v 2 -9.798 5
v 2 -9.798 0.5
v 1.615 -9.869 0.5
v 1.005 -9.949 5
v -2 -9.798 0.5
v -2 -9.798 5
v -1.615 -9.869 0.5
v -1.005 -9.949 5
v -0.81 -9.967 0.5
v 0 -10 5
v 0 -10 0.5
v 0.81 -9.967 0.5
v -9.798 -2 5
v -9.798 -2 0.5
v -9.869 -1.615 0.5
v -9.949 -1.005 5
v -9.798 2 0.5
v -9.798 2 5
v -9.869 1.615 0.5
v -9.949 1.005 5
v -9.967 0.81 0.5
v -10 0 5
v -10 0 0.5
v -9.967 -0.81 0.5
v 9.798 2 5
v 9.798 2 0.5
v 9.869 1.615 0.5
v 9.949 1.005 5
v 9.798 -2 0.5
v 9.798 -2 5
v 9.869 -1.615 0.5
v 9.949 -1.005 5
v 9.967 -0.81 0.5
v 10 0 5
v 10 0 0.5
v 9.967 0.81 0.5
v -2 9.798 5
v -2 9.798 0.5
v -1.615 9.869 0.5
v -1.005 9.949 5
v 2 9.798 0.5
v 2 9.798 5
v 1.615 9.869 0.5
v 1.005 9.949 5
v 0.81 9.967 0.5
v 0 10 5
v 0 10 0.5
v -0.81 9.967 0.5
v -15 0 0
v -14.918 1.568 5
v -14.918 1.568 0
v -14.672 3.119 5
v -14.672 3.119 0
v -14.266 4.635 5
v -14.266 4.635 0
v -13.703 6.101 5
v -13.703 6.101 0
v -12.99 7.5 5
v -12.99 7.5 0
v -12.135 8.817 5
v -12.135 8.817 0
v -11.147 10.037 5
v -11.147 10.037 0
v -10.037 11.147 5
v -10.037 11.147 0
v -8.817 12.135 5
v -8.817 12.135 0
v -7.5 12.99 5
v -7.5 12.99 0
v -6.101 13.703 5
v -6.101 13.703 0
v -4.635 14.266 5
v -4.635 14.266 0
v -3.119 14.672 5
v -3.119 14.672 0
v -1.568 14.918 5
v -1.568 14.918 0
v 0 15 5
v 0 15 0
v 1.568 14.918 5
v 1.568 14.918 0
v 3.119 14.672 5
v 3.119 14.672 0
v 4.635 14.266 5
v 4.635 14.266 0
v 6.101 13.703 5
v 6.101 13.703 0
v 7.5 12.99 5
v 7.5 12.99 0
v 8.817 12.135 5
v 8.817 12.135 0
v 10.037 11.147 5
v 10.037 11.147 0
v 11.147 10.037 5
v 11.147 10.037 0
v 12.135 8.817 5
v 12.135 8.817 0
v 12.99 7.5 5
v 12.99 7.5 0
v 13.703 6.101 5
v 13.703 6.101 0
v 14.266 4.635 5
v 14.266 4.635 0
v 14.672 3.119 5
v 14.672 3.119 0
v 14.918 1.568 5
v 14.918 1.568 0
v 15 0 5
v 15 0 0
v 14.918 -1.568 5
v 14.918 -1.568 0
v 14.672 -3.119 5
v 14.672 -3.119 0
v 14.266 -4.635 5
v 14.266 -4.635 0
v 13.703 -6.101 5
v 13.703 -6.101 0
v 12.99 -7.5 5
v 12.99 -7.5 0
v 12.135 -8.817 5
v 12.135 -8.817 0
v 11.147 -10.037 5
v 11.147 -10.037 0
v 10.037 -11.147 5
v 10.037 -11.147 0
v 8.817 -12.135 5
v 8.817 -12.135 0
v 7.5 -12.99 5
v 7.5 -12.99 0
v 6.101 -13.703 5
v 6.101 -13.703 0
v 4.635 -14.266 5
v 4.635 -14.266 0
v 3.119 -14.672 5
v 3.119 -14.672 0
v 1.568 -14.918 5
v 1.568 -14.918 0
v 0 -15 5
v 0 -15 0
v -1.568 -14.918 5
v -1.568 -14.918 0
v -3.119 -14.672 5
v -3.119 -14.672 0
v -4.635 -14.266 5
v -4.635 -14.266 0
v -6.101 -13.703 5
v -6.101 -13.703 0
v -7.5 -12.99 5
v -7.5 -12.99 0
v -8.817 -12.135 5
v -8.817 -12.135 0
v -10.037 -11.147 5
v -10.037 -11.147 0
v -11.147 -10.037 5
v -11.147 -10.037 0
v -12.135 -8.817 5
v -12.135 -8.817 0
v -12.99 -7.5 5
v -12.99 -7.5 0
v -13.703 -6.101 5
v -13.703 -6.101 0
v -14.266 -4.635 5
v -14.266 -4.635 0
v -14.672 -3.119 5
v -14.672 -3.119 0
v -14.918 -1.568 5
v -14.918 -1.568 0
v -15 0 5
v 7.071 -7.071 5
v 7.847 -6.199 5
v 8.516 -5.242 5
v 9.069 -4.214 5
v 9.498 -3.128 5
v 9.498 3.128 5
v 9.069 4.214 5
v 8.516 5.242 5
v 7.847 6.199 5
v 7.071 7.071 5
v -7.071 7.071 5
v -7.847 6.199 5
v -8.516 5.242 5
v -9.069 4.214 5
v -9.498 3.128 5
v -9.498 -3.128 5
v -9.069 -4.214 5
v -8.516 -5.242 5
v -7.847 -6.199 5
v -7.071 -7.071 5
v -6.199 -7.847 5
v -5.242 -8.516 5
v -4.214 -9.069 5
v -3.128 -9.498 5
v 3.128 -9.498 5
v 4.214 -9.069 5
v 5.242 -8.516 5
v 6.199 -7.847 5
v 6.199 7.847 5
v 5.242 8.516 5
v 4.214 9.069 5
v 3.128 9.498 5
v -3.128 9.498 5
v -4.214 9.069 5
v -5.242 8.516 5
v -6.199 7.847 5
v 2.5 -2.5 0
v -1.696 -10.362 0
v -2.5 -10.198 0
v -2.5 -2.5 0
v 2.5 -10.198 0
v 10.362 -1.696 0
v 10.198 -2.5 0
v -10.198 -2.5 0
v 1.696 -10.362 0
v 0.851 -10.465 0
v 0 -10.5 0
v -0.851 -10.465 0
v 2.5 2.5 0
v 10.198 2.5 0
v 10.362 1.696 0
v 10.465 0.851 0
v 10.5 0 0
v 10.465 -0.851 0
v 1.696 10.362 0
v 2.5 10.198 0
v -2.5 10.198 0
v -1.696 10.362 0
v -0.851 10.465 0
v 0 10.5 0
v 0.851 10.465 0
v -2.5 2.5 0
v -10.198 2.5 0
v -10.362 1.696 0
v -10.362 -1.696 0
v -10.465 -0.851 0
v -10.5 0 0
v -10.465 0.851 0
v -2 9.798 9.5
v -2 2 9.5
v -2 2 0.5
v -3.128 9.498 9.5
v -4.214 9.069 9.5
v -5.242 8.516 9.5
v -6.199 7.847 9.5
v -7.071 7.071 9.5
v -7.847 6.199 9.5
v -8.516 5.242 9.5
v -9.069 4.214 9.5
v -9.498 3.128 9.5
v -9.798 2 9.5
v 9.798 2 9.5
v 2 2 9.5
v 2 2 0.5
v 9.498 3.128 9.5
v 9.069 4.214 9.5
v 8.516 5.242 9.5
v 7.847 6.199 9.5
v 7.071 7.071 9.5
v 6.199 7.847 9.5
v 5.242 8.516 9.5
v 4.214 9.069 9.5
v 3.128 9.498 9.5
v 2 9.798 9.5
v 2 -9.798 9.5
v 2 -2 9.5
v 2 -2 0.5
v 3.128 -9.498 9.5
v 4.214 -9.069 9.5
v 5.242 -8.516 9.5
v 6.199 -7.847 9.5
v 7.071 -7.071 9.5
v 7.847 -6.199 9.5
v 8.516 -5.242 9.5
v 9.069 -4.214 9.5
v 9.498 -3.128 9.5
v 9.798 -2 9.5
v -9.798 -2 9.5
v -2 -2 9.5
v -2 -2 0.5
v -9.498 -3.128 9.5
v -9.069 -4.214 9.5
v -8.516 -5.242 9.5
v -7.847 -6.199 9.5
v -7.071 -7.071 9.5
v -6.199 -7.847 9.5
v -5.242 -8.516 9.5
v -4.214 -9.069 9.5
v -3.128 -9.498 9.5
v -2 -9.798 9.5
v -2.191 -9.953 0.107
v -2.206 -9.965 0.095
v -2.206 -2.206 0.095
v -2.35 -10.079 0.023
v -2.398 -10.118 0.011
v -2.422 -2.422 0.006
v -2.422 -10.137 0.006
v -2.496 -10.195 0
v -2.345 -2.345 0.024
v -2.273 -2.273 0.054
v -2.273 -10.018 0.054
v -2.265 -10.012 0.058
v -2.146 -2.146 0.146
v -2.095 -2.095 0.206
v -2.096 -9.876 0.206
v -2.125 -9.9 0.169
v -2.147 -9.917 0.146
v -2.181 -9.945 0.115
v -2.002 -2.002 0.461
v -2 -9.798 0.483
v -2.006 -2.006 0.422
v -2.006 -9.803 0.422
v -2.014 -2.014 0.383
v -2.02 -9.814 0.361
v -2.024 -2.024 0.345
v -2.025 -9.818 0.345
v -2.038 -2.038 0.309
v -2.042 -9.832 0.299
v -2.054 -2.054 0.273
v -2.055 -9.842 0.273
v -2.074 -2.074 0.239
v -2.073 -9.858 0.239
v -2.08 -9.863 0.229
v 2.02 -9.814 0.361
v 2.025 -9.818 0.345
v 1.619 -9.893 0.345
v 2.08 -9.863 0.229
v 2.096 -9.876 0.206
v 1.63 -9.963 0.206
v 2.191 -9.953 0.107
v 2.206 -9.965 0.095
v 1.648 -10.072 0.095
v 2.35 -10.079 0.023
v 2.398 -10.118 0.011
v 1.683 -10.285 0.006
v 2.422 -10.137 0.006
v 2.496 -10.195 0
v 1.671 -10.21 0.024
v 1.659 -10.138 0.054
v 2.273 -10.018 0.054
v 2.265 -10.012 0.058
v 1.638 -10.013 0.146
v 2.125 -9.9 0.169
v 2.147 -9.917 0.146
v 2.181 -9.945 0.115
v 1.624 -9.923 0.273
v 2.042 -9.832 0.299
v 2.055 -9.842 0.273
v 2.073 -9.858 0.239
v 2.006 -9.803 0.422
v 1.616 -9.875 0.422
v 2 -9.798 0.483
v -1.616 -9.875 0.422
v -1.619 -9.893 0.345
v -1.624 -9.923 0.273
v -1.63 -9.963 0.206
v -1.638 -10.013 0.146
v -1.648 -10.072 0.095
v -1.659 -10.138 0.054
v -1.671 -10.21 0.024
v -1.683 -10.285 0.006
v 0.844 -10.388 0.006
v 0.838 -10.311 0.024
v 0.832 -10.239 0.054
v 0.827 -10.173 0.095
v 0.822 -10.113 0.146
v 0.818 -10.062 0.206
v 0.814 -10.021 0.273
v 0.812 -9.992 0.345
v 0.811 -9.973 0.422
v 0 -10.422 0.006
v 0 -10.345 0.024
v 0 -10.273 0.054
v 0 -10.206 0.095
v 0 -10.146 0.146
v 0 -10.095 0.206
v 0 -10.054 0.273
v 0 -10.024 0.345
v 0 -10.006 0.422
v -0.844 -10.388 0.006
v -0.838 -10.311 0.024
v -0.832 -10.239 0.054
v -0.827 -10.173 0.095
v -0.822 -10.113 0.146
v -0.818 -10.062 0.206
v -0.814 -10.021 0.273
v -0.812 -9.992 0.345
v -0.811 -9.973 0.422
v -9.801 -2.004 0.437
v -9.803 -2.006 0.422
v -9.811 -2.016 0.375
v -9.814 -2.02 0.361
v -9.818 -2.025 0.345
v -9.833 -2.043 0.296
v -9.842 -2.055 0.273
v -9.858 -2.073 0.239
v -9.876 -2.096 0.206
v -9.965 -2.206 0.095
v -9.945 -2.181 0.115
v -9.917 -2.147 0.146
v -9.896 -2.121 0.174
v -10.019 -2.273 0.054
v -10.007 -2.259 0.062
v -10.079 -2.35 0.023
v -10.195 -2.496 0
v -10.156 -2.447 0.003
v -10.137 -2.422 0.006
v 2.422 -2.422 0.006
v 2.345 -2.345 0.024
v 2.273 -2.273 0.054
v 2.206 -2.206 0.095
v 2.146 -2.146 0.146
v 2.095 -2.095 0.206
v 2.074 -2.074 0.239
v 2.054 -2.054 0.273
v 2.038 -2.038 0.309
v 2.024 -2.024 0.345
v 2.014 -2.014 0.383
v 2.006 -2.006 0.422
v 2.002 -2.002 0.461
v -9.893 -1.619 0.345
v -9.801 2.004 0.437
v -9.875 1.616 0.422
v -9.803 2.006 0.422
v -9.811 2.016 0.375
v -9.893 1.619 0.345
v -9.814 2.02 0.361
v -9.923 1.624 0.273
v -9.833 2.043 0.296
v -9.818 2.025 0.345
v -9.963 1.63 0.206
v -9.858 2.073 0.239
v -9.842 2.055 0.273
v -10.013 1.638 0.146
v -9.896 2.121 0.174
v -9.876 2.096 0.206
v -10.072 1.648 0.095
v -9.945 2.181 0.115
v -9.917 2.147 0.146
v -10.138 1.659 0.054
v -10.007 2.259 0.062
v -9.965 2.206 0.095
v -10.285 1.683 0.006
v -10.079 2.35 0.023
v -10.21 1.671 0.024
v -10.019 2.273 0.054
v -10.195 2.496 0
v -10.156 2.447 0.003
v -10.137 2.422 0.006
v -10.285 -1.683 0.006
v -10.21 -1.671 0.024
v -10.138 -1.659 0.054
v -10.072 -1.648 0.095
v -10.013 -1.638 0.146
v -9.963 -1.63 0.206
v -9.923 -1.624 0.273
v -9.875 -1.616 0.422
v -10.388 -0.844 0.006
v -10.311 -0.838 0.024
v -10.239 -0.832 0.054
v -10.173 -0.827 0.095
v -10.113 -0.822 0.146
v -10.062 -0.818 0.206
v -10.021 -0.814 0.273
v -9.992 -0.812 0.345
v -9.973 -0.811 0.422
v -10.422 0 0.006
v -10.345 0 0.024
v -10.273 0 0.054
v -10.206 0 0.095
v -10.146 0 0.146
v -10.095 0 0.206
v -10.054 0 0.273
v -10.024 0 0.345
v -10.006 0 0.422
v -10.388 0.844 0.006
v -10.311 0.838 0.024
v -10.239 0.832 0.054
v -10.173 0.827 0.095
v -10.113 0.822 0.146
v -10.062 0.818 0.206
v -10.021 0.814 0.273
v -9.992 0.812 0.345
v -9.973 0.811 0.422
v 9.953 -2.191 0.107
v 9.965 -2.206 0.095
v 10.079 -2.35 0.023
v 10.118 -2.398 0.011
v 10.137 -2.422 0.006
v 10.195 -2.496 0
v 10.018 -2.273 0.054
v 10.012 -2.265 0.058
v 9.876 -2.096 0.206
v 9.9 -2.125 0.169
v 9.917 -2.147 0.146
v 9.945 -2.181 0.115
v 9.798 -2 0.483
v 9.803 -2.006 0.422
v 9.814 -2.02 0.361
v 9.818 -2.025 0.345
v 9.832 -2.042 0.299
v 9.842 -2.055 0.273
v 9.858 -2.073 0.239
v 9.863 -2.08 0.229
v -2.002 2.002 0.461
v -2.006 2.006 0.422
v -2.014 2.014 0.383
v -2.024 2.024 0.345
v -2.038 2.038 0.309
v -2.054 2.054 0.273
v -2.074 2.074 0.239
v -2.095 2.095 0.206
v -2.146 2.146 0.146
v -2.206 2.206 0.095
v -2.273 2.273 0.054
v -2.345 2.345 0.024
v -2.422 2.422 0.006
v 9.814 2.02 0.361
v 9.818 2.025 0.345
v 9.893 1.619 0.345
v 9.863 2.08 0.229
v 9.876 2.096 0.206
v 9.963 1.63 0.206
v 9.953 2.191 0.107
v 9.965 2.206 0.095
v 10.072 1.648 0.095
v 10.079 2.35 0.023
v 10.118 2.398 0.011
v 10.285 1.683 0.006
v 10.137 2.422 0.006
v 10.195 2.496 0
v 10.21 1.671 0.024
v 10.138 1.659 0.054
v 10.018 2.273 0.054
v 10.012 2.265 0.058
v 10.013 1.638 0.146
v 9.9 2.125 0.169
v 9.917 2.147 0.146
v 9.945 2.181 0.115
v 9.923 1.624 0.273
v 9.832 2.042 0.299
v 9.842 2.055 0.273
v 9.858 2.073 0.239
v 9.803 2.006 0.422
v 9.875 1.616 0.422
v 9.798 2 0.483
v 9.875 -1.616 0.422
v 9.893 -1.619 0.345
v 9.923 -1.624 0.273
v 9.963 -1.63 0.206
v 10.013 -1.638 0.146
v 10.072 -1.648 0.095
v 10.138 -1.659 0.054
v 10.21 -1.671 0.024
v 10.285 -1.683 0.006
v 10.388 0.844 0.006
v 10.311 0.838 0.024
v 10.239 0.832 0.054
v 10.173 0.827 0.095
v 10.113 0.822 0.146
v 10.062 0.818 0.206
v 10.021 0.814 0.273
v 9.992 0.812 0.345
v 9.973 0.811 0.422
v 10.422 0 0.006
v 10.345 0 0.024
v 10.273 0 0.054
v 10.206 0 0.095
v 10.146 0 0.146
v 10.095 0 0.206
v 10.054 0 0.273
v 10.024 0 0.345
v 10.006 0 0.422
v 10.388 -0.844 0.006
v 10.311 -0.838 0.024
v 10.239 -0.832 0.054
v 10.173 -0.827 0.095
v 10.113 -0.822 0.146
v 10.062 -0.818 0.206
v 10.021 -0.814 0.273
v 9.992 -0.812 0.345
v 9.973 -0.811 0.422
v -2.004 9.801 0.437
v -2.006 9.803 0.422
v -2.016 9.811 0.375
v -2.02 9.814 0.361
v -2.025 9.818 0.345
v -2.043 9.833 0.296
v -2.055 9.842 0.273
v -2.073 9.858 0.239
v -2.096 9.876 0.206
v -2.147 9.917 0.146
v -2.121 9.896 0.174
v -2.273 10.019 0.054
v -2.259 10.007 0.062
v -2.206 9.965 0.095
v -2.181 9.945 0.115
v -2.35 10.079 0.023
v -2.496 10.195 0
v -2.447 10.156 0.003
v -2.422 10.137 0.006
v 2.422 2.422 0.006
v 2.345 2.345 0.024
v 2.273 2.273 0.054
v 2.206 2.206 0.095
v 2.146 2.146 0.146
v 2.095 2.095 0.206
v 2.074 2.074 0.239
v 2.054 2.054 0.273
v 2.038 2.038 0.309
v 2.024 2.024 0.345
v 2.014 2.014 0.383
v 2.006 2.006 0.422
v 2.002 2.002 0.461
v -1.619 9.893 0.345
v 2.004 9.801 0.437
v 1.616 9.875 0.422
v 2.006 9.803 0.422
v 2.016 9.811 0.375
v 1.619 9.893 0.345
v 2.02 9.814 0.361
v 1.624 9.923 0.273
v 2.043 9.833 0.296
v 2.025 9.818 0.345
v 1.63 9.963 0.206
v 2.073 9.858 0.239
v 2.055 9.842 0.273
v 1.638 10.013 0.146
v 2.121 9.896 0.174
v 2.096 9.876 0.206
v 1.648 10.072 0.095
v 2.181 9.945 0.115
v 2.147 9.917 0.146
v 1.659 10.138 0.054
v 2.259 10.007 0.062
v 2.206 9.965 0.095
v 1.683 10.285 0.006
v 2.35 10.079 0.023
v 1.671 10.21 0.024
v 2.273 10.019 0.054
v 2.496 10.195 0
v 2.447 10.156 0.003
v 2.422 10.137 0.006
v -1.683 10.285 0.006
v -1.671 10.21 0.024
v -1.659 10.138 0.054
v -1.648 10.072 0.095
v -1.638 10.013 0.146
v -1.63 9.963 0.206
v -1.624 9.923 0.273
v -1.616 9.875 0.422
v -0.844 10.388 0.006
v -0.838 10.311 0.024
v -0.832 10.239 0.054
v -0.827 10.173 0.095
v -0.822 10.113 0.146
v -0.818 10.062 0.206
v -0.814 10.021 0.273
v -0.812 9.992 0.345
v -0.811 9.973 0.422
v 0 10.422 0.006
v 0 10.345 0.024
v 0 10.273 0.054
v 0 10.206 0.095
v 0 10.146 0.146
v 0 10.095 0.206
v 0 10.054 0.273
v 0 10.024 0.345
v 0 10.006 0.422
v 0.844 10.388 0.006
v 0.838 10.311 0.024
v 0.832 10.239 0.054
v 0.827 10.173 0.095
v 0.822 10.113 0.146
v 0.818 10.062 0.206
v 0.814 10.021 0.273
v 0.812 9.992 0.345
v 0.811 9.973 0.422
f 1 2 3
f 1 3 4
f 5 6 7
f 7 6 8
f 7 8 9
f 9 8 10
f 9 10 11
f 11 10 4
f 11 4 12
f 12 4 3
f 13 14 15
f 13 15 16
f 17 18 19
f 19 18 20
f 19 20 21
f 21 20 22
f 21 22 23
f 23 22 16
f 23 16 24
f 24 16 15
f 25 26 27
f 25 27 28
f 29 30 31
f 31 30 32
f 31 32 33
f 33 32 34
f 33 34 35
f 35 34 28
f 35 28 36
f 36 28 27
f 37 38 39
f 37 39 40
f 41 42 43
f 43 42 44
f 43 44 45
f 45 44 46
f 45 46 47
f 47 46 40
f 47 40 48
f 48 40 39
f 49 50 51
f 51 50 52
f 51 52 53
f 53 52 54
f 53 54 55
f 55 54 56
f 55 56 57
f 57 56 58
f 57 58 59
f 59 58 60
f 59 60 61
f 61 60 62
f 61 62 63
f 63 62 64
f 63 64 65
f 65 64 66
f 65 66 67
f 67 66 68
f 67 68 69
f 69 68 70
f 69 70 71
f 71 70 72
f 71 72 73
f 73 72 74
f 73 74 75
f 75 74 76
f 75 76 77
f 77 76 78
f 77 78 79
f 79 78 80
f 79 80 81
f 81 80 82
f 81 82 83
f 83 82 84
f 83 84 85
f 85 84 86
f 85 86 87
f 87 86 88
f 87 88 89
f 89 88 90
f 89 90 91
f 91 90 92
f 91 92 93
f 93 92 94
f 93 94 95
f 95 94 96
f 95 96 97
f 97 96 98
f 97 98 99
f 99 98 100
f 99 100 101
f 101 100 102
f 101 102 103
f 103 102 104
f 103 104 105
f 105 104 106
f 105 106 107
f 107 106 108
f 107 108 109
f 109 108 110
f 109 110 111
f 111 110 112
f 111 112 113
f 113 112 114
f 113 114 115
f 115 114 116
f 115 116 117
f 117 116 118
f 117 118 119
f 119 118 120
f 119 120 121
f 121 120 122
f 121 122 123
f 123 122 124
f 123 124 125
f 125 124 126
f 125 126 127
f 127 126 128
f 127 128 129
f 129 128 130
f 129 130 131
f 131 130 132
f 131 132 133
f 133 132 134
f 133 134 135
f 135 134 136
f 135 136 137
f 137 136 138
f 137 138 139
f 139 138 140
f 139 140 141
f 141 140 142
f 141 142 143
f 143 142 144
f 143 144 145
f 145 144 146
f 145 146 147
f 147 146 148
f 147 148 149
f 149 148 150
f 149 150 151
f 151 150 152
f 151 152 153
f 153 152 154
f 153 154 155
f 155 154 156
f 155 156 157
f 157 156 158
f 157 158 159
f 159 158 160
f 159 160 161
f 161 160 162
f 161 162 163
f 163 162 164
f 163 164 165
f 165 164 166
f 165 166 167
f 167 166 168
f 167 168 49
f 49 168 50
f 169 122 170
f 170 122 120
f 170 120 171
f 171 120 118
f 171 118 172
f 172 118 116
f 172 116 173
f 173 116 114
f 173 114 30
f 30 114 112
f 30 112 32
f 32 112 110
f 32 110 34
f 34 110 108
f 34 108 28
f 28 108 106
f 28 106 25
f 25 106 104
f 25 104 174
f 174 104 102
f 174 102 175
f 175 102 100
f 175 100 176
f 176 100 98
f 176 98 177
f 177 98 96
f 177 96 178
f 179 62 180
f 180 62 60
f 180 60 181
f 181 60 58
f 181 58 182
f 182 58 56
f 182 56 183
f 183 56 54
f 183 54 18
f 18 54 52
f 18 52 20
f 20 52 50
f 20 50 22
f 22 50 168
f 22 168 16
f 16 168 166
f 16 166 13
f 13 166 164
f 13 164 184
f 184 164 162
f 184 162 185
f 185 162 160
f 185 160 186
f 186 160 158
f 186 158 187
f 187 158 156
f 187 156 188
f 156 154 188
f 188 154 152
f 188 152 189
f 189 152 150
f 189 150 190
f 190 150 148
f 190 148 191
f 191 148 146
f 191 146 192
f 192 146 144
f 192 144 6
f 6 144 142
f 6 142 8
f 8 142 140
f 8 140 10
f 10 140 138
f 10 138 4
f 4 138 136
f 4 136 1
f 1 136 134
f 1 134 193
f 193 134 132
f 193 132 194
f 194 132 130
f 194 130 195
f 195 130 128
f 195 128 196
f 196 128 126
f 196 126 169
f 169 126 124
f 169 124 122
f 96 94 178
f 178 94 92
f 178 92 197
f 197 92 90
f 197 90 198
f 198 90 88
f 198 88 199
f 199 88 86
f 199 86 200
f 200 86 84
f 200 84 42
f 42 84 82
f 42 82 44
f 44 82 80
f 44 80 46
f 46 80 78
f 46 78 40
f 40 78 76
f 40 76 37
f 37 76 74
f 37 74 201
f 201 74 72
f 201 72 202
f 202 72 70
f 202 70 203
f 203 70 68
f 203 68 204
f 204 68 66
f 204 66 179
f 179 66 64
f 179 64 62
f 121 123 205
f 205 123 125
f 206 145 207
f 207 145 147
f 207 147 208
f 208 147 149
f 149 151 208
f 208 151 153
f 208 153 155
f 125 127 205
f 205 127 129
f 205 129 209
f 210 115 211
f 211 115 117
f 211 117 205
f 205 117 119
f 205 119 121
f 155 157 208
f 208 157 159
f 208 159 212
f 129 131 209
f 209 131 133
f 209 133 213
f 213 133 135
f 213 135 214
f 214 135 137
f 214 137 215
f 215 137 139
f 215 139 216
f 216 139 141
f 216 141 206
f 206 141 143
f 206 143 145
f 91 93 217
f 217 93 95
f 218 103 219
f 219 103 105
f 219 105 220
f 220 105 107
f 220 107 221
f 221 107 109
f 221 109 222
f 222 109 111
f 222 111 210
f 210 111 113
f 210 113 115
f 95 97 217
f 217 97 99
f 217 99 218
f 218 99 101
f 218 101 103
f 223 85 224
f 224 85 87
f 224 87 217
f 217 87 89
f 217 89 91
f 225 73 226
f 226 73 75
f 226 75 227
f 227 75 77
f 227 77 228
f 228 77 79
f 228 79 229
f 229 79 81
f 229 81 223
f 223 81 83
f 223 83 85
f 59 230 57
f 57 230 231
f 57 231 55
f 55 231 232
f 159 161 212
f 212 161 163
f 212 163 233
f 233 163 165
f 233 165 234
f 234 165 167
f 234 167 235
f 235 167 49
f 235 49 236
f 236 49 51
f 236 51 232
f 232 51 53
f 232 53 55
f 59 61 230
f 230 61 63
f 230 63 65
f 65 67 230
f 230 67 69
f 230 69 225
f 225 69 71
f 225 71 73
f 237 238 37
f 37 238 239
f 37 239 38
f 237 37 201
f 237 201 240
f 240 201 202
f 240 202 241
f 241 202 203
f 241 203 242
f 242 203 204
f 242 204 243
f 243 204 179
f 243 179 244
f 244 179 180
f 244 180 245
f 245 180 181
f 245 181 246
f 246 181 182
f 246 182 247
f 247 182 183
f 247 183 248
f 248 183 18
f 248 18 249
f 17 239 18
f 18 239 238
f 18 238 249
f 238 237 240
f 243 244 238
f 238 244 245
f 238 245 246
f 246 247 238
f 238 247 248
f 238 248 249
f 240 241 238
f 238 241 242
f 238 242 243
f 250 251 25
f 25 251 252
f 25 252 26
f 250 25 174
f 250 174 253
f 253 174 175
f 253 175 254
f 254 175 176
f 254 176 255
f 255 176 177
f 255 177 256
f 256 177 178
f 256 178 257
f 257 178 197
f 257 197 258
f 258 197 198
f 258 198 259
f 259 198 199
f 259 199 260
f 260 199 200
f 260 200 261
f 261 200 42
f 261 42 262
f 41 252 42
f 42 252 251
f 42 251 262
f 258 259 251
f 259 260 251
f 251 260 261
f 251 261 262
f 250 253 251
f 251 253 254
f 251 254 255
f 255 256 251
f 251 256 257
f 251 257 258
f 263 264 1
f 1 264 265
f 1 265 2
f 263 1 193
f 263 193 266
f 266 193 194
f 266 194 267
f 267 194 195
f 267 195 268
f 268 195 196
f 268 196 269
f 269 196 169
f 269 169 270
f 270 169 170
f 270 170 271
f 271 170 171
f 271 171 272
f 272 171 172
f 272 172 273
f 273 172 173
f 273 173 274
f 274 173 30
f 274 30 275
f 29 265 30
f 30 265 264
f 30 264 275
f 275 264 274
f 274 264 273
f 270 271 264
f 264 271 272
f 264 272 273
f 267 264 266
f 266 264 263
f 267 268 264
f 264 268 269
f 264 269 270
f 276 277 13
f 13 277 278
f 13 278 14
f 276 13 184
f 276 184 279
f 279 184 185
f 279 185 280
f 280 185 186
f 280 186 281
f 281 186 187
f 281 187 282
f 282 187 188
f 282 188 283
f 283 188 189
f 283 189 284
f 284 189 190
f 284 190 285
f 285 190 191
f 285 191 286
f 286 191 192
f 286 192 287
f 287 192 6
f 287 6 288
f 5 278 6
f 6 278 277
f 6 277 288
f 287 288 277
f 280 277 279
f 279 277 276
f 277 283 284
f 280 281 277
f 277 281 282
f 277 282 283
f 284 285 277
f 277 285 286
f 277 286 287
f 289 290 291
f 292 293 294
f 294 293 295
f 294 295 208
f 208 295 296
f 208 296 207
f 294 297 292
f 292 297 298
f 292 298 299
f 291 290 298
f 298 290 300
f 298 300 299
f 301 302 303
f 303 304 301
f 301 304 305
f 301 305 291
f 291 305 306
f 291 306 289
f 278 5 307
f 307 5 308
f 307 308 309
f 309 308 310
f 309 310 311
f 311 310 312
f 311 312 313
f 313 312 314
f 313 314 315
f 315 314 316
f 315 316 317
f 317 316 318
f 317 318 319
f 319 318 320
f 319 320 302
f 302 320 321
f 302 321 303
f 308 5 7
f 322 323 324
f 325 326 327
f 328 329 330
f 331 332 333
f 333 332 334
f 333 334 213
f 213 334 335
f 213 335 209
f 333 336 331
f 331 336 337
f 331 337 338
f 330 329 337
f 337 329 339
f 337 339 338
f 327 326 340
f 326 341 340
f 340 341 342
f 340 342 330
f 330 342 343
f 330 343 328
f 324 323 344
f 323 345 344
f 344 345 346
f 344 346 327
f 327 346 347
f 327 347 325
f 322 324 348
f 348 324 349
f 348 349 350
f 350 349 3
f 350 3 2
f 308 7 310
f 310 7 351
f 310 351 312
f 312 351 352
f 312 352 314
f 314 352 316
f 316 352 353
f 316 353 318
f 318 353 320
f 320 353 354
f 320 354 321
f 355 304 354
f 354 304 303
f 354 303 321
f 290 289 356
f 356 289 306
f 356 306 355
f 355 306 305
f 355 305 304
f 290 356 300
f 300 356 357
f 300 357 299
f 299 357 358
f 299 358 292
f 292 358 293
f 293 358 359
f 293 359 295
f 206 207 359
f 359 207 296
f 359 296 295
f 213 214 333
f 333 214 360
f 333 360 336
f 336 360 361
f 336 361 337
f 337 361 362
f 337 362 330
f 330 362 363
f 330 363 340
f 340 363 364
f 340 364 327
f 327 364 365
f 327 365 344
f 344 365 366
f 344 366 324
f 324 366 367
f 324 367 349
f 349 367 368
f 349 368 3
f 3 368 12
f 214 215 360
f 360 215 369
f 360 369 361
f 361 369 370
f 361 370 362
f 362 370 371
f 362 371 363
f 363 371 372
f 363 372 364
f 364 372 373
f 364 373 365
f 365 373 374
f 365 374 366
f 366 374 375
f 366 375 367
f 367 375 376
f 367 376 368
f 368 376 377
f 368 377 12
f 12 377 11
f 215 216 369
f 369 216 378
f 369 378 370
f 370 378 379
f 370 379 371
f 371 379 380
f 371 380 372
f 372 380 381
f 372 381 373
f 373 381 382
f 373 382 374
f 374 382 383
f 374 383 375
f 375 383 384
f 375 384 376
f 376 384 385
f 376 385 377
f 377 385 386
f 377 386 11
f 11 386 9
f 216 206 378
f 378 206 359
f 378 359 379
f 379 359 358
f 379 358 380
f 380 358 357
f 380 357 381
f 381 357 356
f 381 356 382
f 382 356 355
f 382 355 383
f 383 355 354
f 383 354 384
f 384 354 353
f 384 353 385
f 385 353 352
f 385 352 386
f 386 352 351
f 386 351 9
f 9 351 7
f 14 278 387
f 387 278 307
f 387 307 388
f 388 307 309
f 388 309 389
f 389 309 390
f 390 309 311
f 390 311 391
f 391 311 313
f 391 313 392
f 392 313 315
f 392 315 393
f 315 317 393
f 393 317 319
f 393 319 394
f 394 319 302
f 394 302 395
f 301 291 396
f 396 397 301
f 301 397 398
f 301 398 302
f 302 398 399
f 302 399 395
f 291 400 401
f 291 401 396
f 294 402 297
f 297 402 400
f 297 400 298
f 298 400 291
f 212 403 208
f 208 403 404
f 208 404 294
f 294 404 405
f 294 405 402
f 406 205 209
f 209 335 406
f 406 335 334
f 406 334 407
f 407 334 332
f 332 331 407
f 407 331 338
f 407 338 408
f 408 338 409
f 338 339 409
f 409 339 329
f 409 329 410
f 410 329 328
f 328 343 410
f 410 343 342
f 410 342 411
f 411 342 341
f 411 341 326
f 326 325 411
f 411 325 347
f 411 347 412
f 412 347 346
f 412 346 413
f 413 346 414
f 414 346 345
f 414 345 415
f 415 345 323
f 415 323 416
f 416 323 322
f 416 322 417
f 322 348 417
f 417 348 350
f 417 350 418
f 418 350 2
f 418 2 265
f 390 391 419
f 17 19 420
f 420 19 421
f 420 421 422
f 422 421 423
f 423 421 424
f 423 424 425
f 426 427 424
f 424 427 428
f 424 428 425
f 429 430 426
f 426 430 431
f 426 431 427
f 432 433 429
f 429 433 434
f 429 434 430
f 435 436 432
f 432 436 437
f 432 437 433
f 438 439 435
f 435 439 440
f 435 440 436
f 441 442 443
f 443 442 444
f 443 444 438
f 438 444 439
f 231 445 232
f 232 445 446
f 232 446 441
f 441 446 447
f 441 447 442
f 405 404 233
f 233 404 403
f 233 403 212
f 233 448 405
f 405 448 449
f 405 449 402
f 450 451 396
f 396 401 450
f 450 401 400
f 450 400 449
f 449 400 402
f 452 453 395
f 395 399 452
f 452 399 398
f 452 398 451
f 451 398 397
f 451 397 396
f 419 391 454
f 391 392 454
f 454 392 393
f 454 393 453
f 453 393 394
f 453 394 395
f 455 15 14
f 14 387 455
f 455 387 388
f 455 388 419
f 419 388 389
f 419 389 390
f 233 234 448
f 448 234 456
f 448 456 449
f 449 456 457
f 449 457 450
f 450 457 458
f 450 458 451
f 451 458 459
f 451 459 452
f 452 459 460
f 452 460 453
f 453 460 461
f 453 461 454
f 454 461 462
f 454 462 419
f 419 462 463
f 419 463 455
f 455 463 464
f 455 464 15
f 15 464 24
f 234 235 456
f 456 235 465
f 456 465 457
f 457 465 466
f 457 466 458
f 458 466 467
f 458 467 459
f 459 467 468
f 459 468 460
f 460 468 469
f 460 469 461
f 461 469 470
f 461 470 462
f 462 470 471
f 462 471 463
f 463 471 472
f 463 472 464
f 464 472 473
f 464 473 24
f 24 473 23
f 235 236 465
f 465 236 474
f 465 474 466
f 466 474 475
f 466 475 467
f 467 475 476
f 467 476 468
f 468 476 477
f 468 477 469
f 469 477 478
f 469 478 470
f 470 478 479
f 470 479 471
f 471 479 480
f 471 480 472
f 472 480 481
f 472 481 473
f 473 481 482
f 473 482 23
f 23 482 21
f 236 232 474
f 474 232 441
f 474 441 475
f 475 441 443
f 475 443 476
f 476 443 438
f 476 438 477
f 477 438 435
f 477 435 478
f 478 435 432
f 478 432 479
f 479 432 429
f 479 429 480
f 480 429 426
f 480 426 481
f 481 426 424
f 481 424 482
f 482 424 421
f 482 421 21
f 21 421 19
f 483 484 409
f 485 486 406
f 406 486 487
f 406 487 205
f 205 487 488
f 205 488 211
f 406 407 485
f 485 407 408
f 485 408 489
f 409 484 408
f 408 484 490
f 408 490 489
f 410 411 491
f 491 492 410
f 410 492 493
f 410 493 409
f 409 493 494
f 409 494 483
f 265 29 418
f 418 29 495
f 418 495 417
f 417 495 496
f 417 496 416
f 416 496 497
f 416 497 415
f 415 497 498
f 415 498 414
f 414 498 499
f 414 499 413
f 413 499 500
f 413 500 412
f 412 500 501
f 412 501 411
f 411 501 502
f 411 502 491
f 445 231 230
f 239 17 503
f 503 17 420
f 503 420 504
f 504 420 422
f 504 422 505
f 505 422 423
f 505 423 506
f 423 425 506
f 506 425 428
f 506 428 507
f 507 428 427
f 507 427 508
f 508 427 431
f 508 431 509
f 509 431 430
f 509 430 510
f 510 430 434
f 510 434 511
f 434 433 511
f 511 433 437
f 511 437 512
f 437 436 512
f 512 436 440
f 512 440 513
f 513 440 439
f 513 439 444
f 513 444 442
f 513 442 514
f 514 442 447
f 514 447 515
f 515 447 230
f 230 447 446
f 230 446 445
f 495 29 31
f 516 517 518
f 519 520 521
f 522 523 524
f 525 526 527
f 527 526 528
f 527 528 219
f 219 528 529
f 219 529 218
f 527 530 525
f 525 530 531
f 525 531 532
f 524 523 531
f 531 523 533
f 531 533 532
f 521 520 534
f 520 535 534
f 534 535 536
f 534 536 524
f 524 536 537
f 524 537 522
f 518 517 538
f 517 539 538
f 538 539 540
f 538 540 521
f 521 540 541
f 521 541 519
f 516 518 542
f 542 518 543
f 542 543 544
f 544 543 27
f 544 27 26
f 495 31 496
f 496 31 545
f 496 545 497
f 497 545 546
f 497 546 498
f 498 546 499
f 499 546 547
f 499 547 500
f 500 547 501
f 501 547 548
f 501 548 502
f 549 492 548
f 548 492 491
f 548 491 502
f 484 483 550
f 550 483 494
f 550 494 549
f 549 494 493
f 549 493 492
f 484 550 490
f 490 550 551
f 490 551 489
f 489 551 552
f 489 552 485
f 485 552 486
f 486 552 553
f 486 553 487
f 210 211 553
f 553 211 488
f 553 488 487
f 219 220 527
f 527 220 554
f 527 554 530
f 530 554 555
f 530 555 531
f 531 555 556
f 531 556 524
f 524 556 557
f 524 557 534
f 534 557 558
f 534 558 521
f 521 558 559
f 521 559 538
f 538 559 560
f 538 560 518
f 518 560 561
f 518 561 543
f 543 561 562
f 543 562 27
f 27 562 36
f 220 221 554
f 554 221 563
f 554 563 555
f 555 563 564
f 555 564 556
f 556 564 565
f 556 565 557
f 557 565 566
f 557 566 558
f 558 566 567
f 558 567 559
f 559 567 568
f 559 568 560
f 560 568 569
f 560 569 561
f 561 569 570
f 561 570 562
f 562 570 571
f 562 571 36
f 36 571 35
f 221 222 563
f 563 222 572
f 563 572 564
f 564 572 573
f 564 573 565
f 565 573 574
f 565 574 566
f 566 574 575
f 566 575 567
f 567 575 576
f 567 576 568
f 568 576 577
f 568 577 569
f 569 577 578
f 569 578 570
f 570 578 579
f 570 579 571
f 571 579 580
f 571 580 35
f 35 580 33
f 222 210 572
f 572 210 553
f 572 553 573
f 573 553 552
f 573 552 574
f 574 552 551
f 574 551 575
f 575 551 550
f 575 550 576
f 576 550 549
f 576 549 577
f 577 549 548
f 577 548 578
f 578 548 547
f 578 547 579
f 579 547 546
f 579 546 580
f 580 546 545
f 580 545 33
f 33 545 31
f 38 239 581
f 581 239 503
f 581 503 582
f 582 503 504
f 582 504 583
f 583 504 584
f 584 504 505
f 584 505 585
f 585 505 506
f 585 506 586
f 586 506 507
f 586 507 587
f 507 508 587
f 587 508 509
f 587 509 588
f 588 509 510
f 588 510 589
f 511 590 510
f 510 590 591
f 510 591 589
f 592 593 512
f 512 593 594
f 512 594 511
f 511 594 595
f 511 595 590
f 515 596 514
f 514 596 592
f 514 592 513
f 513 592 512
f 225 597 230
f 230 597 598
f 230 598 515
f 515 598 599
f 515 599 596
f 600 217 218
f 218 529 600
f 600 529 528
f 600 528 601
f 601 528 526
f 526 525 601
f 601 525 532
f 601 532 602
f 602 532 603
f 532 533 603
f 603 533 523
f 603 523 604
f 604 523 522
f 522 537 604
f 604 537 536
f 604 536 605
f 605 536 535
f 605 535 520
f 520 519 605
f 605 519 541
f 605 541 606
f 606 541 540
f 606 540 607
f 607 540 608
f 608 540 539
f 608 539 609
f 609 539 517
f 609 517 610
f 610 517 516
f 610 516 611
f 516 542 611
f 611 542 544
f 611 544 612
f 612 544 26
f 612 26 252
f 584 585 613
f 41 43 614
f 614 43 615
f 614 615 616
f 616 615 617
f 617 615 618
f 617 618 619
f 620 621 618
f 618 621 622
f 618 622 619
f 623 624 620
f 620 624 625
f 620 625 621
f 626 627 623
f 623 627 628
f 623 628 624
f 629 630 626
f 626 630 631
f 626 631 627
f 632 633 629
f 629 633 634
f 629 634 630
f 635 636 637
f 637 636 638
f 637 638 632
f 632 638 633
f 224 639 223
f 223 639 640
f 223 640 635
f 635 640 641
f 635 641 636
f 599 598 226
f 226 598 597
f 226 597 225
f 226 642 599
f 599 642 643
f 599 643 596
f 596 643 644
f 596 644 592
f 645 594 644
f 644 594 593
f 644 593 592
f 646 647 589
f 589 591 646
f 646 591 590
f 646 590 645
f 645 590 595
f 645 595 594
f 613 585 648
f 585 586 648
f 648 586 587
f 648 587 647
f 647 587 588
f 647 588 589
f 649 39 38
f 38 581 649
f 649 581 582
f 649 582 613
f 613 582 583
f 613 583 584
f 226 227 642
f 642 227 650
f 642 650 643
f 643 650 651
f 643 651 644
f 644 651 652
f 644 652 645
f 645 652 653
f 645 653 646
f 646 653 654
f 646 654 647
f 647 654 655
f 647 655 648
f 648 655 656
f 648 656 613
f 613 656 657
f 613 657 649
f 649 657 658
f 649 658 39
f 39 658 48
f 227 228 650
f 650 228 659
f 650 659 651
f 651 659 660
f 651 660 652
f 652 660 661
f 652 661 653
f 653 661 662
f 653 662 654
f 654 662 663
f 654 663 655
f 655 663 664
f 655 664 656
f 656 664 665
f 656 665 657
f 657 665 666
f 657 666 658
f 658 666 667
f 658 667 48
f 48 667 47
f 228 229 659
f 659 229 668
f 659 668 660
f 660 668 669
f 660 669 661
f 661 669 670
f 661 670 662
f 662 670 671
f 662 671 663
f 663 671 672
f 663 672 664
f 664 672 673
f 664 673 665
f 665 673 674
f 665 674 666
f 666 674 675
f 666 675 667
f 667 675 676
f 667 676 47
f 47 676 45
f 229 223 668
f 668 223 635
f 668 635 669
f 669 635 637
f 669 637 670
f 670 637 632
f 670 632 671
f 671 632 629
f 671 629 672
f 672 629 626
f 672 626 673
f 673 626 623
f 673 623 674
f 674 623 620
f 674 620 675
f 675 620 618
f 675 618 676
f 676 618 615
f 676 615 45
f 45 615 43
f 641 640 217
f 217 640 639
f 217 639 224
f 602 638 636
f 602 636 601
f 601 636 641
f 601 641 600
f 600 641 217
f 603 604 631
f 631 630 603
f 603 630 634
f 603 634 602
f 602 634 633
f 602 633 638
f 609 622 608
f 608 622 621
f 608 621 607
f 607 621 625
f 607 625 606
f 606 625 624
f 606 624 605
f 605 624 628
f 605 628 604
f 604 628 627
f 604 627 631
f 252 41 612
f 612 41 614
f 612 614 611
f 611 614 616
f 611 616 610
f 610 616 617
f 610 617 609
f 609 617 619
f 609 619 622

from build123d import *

# Parameters (mm, degrees)
SKETCH1_R           = 15
BOSS_EXTRUDE1_DEPTH = 5
BOSS_EXTRUDE2_DEPTH = 9.5
FILLET1_R           = 0.5


with BuildPart() as part:
    # Sketch1 → Boss-Extrude1 (new body)
    with BuildSketch(Plane.XY):
        Circle(SKETCH1_R)
        with BuildLine():
            ThreePointArc((1.9999999999999991, -9.797958971132713), (-1.84e-15, -10), (-2.0000000000000027, -9.797958971132712))
            ThreePointArc((-2.0000000000000027, -9.797958971132712), (-7.071067811865477, -7.071067811865475), (-9.797958971132712, -1.9999999999999996))
            ThreePointArc((-9.797958971132712, -1.9999999999999996), (-10, 1.22e-15), (-9.797958971132712, 2.000000000000002))
            ThreePointArc((-9.797958971132712, 2.000000000000002), (-7.071067811865475, 7.0710678118654755), (-2.0000000000000004, 9.797958971132712))
            ThreePointArc((-2.0000000000000004, 9.797958971132712), (-1.61e-15, 10), (1.9999999999999993, 9.797958971132713))
            ThreePointArc((1.9999999999999993, 9.797958971132713), (7.0710678118654755, 7.071067811865475), (9.797958971132712, 2))
            ThreePointArc((9.797958971132712, 2), (9.94936153005124, 1.0050896200520818), (10, 0))
            ThreePointArc((10, -2.45e-15), (9.94936153005124, -1.0050896200520847), (9.797958971132712, -2.000000000000003))
            ThreePointArc((9.797958971132712, -2.000000000000003), (7.071067811865474, -7.071067811865477), (1.9999999999999991, -9.797958971132713))
        make_face(mode=Mode.SUBTRACT)
    extrude(amount=BOSS_EXTRUDE1_DEPTH)

    # Sketch1<3> → Boss-Extrude2 (add)
    with BuildSketch(Plane.XY):
        with BuildLine():
            ThreePointArc((-9.797958971132712, -1.9999999999999996), (-7.071067811865477, -7.071067811865475), (-2.0000000000000027, -9.797958971132712))
            Line((-2, -9.797958971132713), (-2, -2))
            Line((-2, -2), (-9.797958971132713, -2))
        make_face()
        with BuildLine():
            Line((2, -2), (2, -9.797958971132713))
            ThreePointArc((1.9999999999999991, -9.797958971132713), (7.071067811865474, -7.071067811865477), (9.797958971132712, -2.000000000000003))
            Line((9.797958971132713, -2), (2, -2))
        make_face()
        with BuildLine():
            Line((-9.797958971132713, 2), (-2, 2))
            Line((-2, 2), (-2, 9.797958971132713))
            ThreePointArc((-2.0000000000000004, 9.797958971132712), (-7.071067811865475, 7.0710678118654755), (-9.797958971132712, 2.000000000000002))
        make_face()
        with BuildLine():
            Line((2, 9.797958971132713), (2, 2))
            Line((2, 2), (9.797958971132713, 2))
            ThreePointArc((9.797958971132712, 2), (7.0710678118654755, 7.071067811865475), (1.9999999999999993, 9.797958971132713))
        make_face()
    extrude(amount=BOSS_EXTRUDE2_DEPTH)

    # Fillet1
    fillet1_edges = [part.edges().sort_by_distance(p)[0] for p in [
        (2, 5.898979485566357, 0),
        (5.898979485566357, 2, 0),
        (10.00000000000005, 0, 0),
        (5.898979485566357, -2, 0),
        (-5.33e-15, -10.000000000000096, 0),
        (2, -5.898979485566357, 0),
        (-2, -5.898979485566357, 0),
        (-5.898979485566357, -2, 0),
        (-10.000000000000043, -8.22e-15, 0),
        (-5.898979485566357, 2, 0),
        (-8.9e-16, 9.999999999999998, 0),
        (-2, 5.898979485566357, 0),
    ]]
    fillet(fillet1_edges, radius=FILLET1_R)


solid = part.part
